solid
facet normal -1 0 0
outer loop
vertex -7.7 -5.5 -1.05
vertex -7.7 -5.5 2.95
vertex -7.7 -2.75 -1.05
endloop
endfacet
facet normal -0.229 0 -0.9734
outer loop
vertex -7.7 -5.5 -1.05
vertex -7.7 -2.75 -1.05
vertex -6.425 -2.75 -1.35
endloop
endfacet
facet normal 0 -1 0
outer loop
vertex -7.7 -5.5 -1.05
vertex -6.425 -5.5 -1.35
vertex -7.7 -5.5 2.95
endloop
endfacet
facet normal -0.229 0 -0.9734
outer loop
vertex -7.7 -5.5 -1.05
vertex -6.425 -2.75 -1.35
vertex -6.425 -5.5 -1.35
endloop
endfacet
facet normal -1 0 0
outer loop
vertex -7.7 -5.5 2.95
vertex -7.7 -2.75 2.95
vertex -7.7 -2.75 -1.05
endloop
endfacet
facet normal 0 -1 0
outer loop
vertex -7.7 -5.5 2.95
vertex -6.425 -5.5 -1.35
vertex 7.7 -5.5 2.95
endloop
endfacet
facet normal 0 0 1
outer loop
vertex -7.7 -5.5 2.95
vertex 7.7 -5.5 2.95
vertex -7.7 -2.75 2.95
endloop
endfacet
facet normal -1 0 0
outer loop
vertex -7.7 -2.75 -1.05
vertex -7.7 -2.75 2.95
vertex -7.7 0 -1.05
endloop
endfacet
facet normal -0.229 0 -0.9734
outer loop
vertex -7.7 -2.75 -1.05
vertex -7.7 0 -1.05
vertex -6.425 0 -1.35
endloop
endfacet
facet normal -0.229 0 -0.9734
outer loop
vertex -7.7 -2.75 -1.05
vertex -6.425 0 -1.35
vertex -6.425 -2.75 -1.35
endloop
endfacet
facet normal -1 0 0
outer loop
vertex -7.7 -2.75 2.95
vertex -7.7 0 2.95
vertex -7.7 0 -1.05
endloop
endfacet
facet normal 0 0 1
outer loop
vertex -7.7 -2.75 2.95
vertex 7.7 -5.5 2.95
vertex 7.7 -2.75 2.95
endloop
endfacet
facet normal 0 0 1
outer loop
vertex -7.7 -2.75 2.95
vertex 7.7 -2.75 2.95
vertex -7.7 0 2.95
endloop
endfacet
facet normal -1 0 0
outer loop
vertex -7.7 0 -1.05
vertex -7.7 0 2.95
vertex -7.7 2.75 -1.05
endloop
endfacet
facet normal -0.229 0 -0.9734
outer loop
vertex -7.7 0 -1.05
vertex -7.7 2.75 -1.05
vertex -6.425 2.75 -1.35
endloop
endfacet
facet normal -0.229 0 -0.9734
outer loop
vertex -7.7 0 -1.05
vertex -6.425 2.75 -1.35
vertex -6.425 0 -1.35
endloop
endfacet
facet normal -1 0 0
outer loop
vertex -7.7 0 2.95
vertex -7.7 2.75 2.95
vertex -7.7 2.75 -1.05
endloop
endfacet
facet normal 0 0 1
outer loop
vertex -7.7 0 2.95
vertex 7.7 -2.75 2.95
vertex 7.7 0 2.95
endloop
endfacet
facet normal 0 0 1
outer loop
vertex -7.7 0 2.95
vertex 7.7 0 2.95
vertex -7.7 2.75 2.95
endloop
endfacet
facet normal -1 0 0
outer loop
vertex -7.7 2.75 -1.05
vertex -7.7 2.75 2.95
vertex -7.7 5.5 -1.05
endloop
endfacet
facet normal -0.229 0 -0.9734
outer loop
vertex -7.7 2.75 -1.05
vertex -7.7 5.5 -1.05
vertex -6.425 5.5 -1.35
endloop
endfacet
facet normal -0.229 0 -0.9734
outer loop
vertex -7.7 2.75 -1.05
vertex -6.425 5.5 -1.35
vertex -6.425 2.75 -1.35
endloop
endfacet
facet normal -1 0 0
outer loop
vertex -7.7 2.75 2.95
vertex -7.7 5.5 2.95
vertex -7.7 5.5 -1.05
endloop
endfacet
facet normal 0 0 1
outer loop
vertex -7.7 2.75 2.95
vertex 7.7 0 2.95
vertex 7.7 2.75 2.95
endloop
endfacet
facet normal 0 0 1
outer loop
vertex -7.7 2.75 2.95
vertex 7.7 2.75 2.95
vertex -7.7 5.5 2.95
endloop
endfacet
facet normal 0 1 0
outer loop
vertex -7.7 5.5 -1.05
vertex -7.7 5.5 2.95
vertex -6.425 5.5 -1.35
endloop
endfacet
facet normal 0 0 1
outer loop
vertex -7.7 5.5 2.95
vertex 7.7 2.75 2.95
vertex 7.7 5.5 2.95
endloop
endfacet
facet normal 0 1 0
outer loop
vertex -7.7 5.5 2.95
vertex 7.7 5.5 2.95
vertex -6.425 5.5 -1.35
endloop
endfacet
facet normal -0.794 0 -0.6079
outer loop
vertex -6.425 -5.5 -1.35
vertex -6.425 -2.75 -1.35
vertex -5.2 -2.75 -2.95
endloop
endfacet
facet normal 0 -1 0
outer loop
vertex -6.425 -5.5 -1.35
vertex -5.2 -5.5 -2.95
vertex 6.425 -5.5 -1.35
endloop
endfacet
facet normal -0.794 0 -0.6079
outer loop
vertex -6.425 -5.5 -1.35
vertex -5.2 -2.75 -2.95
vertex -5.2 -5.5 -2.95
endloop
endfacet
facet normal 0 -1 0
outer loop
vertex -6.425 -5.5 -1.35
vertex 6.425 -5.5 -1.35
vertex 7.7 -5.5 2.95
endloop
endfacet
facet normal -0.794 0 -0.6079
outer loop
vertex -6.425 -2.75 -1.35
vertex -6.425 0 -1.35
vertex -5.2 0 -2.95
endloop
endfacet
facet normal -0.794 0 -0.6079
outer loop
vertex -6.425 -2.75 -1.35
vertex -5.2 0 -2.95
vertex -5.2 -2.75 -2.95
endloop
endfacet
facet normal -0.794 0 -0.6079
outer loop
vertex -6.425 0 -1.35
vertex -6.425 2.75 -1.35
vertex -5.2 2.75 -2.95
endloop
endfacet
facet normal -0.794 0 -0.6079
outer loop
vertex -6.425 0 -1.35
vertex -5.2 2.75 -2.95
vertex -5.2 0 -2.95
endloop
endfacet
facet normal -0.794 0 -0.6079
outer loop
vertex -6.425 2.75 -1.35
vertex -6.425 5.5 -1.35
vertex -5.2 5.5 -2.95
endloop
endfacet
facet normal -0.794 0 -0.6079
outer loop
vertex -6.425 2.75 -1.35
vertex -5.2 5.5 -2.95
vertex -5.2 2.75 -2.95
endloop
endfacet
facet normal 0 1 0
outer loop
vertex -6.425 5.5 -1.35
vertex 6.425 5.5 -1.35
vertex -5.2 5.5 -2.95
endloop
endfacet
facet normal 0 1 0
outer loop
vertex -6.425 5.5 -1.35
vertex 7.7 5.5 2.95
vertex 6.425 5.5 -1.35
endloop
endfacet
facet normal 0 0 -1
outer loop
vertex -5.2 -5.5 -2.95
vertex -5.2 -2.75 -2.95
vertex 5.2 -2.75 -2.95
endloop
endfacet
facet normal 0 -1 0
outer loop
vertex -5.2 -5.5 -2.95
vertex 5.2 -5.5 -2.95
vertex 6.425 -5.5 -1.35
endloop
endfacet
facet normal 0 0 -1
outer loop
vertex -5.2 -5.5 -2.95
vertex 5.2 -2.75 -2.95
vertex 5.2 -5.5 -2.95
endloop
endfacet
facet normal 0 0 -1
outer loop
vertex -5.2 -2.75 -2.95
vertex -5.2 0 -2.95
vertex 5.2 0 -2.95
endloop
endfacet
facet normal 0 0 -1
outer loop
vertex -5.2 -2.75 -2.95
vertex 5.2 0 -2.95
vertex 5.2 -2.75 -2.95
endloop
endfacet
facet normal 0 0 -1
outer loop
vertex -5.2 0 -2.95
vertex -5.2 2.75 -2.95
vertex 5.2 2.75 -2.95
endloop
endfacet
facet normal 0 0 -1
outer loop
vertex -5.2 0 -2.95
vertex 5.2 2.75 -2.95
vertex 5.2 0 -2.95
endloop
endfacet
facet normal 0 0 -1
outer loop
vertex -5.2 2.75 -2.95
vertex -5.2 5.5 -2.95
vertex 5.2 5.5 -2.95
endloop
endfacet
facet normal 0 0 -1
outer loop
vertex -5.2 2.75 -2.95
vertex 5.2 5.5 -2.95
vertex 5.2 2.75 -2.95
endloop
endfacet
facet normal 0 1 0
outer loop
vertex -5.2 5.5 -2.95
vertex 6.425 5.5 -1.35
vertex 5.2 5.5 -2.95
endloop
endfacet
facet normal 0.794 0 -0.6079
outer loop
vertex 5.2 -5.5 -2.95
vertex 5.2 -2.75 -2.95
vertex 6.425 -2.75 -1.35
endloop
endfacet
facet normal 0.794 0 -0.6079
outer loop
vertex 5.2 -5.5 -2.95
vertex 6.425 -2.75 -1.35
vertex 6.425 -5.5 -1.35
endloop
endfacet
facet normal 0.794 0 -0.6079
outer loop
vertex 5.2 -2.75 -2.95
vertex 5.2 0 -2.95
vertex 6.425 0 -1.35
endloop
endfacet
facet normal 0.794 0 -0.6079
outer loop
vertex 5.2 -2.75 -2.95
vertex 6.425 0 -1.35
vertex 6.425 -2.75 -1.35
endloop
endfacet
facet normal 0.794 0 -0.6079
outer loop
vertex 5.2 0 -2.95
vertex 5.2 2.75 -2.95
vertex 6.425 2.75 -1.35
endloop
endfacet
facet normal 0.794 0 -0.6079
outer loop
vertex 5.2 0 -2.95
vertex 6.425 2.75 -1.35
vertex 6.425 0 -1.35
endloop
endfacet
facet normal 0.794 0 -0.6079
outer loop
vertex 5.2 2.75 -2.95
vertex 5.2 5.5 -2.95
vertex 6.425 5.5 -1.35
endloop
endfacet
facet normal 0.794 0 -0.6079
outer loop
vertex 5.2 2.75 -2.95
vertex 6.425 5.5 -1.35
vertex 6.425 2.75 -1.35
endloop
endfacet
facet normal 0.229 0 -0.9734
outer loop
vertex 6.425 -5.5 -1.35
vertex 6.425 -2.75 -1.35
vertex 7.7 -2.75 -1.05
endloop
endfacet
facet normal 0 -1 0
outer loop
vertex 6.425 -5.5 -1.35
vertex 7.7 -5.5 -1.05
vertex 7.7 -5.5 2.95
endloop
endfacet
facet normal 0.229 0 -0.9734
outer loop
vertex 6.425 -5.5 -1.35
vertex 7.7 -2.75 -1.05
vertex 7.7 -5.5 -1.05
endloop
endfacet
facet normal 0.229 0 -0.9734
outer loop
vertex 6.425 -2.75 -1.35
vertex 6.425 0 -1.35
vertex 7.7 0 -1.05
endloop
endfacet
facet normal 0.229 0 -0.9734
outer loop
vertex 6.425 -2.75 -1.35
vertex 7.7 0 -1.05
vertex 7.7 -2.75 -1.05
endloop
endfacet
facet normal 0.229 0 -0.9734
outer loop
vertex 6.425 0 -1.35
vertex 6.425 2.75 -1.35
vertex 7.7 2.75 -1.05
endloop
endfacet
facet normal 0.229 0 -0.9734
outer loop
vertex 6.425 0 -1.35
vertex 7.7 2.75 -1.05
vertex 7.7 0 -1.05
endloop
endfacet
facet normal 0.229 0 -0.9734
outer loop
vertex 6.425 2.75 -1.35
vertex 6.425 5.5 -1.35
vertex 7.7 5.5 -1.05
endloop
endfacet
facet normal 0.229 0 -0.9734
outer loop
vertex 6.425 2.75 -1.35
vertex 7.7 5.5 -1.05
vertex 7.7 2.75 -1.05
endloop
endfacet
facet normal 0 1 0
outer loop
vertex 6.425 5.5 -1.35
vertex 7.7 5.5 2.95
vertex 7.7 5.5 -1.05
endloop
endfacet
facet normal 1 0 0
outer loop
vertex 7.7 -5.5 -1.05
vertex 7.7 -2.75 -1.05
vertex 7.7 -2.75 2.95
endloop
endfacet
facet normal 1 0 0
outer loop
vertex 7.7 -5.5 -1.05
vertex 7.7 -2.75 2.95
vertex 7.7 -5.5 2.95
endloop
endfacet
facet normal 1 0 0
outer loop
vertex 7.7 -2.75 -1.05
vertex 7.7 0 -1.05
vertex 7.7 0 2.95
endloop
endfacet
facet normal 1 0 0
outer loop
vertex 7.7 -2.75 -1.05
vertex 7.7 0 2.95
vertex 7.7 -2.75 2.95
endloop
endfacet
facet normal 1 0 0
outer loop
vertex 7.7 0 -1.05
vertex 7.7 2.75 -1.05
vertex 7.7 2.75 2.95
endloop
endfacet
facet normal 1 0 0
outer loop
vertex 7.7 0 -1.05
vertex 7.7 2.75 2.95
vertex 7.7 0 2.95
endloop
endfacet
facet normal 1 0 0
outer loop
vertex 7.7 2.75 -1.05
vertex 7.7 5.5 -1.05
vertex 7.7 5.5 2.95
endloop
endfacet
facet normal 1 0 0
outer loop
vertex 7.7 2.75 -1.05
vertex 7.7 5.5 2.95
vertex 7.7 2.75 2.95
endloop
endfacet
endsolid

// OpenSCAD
// Start: lazy_union
default_5_default_5();
// End: lazy_union

// Modules.

// 'PartMaterial undef-default - default 5.0'
module default_5_default_5() {
  // 'None : _combine_solids_and_holes'
  union() {
    // 'default : _combine_solids_and_holes'
    union() {
      // 'cage'
      %multmatrix(m=[[1.0, 0.0, 0.0, -7.7], [0.0, 1.0, 0.0, -5.5], [0.0, 0.0, 1.0, -2.95], [0.0, 0.0, 0.0, 1.0]]) {
        // 'cage'
        color(c=[0.0, 1.0, 0.35, 0.4]) {
          // 'cage : _combine_solids_and_holes'
          union() {
            // 'cage'
            cube(size=[15.4, 11.0, 5.9]);
          }
        }
      }
      // 'hdmi'
      multmatrix(m=[[-1.0, 0.0, 0.0, 0.0], [0.0, 0.0, 1.0, -5.5], [0.0, 1.0, 0.0, -2.95], [0.0, 0.0, 0.0, 1.0]]) {
        // 'hdmi : _combine_solids_and_holes'
        union() {
          // 'hdmi'
          linear_extrude(height=11.0, twist=0.0, slices=4, scale=[1.0, 1.0]) {
            polygon(points=[[0.0, 0.0], [-5.199999999999999, 0.0], [-6.425, 1.6000000000000005], [-7.7, 1.9000000000000004], [-7.7, 5.9], [7.7, 5.9], [7.7, 1.9000000000000004], [6.425, 1.6000000000000005], [5.199999999999999, 0.0]]);
          }
        }
      }
    }
  }
} // end module default_5_default_5
